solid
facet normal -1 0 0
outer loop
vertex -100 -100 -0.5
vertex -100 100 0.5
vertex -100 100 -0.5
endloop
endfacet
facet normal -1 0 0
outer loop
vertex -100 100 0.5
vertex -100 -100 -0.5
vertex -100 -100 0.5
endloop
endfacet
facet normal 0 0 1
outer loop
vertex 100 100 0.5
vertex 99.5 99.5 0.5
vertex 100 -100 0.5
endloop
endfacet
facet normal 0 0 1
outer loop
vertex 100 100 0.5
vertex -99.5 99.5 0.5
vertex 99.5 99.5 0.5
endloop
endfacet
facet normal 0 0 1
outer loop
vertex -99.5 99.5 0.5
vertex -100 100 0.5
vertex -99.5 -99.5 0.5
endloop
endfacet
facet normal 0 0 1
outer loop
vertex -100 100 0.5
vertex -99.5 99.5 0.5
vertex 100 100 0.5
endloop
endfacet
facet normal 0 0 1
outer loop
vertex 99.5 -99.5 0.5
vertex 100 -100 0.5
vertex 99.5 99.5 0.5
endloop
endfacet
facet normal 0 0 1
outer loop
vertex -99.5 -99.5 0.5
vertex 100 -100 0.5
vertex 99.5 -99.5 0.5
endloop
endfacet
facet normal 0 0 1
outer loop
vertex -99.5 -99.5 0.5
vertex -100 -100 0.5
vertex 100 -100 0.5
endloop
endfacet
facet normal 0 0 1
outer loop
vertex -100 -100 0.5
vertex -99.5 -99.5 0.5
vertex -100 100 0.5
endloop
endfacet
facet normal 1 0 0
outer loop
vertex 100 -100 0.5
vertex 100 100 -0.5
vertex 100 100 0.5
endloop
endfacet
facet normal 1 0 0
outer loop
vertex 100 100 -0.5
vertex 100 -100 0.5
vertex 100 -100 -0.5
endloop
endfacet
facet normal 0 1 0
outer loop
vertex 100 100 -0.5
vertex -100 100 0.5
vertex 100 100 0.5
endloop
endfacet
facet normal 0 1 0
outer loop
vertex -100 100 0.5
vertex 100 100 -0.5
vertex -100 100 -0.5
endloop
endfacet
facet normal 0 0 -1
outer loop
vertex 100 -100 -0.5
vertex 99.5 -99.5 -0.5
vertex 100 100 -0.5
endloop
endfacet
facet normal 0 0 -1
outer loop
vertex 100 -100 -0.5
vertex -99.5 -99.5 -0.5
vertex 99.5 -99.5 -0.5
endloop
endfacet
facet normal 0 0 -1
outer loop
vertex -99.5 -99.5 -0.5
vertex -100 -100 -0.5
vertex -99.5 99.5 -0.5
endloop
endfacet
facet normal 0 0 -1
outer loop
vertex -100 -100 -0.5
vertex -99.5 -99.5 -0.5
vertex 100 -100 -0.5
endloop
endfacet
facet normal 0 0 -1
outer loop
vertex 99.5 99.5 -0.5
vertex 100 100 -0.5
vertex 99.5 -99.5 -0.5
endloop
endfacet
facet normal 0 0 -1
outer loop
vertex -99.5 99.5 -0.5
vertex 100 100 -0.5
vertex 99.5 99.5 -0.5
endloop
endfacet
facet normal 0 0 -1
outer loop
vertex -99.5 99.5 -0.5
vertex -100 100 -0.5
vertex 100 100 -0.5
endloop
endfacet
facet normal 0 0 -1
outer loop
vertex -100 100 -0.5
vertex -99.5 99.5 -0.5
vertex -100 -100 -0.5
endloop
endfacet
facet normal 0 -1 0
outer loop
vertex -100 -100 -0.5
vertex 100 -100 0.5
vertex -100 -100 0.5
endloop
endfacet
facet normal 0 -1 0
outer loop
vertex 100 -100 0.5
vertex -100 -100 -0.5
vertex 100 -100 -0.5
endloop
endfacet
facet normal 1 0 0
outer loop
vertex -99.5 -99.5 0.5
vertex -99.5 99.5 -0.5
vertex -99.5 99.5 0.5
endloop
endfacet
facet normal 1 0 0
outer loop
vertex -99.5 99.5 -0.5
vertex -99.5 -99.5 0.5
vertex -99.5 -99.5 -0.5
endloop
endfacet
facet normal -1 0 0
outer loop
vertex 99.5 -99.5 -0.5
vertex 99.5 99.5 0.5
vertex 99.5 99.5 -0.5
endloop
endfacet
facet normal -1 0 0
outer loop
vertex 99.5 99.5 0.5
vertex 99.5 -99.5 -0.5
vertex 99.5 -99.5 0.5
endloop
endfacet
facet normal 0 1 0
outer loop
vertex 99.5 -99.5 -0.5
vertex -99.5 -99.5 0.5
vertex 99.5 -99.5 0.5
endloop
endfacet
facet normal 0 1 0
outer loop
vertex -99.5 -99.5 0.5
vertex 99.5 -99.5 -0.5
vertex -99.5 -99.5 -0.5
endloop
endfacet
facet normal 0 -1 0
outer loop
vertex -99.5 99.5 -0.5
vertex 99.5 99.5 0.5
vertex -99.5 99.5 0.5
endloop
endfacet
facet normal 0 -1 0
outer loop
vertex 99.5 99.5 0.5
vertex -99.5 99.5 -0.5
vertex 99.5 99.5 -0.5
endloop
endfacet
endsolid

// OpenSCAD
difference(){
    cube([200,200,1],center=true);
    cube([199,199,6],center=true);
}
